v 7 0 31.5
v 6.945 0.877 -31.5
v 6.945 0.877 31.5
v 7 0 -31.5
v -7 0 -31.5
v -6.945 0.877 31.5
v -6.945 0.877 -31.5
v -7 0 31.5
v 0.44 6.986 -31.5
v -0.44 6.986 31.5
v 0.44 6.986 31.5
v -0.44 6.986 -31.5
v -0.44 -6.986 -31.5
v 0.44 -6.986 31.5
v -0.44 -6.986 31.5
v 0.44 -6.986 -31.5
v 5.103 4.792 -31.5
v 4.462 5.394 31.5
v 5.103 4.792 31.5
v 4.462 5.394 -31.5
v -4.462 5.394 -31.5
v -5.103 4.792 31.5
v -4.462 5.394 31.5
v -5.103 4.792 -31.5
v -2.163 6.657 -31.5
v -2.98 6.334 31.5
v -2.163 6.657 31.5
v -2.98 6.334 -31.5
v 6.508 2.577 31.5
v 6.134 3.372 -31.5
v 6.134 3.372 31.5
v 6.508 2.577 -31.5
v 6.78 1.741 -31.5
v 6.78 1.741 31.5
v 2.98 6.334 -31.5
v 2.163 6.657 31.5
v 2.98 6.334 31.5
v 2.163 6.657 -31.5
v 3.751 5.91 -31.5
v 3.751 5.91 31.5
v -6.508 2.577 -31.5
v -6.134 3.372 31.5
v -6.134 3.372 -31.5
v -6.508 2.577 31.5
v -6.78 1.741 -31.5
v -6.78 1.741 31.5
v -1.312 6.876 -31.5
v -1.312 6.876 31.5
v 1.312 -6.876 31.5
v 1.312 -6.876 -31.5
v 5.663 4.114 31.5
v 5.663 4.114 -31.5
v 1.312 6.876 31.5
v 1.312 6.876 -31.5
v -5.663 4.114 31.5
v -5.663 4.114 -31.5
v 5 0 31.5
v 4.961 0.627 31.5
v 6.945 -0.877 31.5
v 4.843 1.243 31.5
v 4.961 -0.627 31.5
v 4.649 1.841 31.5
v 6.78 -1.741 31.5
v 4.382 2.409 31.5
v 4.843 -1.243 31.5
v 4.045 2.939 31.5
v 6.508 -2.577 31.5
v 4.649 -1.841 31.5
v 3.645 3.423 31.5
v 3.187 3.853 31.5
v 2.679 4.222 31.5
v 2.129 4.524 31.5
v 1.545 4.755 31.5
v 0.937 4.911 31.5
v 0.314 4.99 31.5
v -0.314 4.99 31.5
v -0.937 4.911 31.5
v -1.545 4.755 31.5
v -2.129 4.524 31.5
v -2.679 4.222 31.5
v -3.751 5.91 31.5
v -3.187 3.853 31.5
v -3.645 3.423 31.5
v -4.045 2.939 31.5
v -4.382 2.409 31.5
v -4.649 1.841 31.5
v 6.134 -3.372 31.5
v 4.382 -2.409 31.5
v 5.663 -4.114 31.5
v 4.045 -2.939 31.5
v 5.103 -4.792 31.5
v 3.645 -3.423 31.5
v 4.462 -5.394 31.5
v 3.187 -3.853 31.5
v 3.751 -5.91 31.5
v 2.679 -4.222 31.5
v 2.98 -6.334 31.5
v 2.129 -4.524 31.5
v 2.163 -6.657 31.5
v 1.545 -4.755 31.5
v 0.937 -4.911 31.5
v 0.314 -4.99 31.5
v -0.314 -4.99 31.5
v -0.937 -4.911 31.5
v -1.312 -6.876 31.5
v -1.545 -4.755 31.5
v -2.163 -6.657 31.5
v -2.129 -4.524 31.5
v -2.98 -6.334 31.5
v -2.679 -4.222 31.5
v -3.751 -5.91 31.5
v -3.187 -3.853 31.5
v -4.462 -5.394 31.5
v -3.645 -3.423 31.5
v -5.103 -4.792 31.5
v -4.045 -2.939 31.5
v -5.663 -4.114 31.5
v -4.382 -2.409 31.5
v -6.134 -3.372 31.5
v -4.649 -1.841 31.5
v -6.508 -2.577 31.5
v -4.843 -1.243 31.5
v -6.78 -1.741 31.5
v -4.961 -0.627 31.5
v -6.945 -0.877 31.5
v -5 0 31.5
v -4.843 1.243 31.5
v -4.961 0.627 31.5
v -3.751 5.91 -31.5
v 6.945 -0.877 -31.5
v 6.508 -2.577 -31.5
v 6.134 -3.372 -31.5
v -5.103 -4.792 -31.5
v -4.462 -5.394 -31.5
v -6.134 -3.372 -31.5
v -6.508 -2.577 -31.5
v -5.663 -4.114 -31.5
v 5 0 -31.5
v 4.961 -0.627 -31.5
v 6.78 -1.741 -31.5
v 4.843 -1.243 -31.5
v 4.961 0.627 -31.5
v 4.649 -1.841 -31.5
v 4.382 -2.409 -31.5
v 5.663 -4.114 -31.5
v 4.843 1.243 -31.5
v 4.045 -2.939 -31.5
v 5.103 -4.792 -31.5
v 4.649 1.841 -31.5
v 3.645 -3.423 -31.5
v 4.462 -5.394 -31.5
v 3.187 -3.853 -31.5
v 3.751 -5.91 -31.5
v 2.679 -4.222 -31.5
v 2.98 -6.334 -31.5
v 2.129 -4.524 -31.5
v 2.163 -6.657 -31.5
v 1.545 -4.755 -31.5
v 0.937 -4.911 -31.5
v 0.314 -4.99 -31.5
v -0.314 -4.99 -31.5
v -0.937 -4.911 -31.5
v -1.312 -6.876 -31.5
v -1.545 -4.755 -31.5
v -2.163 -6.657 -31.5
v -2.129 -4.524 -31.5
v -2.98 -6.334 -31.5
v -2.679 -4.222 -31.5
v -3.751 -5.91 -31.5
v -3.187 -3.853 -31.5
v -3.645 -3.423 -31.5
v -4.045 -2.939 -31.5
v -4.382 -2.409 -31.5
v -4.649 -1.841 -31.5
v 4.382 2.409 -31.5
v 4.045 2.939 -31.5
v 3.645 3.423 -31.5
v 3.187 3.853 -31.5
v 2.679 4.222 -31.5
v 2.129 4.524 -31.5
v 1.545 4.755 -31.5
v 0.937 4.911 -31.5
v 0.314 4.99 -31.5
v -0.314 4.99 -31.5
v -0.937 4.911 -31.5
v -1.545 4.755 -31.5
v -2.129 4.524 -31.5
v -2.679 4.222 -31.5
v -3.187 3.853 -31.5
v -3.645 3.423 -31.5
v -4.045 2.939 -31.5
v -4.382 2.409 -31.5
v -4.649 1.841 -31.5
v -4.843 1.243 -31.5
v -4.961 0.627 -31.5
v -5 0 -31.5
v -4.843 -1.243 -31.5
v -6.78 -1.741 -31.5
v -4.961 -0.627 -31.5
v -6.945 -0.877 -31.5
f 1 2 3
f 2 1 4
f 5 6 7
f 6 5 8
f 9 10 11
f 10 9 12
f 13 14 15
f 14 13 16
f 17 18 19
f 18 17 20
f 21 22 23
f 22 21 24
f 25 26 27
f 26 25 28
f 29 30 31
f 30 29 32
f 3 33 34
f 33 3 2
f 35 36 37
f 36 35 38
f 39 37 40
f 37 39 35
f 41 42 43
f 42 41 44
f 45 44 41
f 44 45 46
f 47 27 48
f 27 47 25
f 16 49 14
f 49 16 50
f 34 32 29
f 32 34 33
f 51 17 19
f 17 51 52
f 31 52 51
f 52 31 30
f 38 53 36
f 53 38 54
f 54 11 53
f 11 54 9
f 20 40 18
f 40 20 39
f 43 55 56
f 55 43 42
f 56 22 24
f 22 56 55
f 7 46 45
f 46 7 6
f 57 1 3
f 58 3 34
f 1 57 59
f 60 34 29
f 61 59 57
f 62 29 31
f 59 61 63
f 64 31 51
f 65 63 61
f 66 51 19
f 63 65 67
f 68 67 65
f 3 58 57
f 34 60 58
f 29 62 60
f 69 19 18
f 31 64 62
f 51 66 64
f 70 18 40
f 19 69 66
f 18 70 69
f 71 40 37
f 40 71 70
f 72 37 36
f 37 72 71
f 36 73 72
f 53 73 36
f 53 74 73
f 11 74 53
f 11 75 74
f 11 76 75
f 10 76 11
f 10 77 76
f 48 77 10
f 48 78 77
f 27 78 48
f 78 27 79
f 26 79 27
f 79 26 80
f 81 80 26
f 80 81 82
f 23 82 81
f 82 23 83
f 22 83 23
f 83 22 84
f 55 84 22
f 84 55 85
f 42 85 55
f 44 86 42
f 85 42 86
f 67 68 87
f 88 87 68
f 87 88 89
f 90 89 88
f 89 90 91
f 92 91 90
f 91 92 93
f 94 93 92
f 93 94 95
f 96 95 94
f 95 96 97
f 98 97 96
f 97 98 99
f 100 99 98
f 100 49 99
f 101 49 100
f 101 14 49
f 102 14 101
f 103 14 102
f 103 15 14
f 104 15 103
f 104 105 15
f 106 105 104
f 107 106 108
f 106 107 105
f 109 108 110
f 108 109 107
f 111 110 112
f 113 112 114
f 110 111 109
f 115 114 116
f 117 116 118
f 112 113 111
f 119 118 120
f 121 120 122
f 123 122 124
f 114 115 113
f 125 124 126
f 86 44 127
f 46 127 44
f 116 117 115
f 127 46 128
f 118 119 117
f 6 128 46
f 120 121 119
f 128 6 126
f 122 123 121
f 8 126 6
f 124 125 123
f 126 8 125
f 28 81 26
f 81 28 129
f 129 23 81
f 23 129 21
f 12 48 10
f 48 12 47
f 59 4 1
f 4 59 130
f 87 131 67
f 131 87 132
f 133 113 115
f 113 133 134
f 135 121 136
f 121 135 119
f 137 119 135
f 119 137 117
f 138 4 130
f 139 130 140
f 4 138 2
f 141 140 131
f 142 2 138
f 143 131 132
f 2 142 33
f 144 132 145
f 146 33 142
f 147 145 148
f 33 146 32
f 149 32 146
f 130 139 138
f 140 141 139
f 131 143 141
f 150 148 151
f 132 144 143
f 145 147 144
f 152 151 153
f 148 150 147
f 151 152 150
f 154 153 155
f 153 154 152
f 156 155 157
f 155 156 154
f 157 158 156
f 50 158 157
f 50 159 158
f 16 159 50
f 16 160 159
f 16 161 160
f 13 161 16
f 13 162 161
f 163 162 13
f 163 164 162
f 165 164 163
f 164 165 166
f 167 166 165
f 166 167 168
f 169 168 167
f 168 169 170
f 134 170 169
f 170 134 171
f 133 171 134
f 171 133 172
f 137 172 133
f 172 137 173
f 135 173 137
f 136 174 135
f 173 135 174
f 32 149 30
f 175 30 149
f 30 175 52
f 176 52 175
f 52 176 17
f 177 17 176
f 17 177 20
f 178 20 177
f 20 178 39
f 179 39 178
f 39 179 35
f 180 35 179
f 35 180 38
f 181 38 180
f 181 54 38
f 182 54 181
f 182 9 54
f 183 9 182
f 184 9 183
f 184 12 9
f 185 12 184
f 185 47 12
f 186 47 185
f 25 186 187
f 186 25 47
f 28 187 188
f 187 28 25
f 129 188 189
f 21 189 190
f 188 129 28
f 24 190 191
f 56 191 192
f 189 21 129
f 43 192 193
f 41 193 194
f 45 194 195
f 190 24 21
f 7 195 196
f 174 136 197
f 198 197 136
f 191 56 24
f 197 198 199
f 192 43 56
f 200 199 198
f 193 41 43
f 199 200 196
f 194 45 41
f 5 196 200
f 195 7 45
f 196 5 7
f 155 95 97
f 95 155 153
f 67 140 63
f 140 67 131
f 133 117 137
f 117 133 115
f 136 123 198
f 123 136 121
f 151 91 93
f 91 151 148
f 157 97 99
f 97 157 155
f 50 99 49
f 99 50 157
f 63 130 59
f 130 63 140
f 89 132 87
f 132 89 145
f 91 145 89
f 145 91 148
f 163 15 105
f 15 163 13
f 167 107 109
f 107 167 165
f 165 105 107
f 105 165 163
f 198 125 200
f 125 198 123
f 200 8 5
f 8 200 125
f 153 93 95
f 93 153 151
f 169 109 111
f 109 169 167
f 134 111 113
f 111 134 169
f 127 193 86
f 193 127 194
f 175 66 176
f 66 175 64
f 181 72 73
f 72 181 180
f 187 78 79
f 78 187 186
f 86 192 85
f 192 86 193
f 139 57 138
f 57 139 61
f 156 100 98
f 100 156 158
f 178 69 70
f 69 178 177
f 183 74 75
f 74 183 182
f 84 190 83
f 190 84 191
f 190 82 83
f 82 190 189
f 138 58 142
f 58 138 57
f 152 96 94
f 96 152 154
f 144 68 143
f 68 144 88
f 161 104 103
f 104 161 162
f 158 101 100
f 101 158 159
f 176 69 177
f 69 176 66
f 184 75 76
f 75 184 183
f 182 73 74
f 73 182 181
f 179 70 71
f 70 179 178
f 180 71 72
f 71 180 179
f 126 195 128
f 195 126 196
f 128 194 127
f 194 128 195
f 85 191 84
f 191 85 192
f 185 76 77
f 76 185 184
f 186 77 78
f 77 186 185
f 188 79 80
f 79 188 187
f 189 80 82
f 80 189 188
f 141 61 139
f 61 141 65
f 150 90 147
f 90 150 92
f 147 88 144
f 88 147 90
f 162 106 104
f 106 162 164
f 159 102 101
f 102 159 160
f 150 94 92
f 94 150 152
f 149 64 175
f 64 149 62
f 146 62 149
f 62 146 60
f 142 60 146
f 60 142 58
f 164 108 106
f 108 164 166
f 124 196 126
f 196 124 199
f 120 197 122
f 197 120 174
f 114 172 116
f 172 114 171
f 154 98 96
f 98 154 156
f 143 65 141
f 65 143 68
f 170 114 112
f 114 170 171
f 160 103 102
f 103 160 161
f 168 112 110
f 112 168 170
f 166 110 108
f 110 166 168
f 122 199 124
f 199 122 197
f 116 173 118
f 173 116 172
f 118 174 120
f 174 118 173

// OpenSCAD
$fn = 50;


difference() {
	union() {
		translate(v = [0, 0, -31.5000000000]) {
			cylinder(h = 63, r = 7.0000000000);
		}
	}
	union() {
		translate(v = [0, 0, -100.0000000000]) {
			cylinder(h = 200, r = 5);
		}
	}
}
